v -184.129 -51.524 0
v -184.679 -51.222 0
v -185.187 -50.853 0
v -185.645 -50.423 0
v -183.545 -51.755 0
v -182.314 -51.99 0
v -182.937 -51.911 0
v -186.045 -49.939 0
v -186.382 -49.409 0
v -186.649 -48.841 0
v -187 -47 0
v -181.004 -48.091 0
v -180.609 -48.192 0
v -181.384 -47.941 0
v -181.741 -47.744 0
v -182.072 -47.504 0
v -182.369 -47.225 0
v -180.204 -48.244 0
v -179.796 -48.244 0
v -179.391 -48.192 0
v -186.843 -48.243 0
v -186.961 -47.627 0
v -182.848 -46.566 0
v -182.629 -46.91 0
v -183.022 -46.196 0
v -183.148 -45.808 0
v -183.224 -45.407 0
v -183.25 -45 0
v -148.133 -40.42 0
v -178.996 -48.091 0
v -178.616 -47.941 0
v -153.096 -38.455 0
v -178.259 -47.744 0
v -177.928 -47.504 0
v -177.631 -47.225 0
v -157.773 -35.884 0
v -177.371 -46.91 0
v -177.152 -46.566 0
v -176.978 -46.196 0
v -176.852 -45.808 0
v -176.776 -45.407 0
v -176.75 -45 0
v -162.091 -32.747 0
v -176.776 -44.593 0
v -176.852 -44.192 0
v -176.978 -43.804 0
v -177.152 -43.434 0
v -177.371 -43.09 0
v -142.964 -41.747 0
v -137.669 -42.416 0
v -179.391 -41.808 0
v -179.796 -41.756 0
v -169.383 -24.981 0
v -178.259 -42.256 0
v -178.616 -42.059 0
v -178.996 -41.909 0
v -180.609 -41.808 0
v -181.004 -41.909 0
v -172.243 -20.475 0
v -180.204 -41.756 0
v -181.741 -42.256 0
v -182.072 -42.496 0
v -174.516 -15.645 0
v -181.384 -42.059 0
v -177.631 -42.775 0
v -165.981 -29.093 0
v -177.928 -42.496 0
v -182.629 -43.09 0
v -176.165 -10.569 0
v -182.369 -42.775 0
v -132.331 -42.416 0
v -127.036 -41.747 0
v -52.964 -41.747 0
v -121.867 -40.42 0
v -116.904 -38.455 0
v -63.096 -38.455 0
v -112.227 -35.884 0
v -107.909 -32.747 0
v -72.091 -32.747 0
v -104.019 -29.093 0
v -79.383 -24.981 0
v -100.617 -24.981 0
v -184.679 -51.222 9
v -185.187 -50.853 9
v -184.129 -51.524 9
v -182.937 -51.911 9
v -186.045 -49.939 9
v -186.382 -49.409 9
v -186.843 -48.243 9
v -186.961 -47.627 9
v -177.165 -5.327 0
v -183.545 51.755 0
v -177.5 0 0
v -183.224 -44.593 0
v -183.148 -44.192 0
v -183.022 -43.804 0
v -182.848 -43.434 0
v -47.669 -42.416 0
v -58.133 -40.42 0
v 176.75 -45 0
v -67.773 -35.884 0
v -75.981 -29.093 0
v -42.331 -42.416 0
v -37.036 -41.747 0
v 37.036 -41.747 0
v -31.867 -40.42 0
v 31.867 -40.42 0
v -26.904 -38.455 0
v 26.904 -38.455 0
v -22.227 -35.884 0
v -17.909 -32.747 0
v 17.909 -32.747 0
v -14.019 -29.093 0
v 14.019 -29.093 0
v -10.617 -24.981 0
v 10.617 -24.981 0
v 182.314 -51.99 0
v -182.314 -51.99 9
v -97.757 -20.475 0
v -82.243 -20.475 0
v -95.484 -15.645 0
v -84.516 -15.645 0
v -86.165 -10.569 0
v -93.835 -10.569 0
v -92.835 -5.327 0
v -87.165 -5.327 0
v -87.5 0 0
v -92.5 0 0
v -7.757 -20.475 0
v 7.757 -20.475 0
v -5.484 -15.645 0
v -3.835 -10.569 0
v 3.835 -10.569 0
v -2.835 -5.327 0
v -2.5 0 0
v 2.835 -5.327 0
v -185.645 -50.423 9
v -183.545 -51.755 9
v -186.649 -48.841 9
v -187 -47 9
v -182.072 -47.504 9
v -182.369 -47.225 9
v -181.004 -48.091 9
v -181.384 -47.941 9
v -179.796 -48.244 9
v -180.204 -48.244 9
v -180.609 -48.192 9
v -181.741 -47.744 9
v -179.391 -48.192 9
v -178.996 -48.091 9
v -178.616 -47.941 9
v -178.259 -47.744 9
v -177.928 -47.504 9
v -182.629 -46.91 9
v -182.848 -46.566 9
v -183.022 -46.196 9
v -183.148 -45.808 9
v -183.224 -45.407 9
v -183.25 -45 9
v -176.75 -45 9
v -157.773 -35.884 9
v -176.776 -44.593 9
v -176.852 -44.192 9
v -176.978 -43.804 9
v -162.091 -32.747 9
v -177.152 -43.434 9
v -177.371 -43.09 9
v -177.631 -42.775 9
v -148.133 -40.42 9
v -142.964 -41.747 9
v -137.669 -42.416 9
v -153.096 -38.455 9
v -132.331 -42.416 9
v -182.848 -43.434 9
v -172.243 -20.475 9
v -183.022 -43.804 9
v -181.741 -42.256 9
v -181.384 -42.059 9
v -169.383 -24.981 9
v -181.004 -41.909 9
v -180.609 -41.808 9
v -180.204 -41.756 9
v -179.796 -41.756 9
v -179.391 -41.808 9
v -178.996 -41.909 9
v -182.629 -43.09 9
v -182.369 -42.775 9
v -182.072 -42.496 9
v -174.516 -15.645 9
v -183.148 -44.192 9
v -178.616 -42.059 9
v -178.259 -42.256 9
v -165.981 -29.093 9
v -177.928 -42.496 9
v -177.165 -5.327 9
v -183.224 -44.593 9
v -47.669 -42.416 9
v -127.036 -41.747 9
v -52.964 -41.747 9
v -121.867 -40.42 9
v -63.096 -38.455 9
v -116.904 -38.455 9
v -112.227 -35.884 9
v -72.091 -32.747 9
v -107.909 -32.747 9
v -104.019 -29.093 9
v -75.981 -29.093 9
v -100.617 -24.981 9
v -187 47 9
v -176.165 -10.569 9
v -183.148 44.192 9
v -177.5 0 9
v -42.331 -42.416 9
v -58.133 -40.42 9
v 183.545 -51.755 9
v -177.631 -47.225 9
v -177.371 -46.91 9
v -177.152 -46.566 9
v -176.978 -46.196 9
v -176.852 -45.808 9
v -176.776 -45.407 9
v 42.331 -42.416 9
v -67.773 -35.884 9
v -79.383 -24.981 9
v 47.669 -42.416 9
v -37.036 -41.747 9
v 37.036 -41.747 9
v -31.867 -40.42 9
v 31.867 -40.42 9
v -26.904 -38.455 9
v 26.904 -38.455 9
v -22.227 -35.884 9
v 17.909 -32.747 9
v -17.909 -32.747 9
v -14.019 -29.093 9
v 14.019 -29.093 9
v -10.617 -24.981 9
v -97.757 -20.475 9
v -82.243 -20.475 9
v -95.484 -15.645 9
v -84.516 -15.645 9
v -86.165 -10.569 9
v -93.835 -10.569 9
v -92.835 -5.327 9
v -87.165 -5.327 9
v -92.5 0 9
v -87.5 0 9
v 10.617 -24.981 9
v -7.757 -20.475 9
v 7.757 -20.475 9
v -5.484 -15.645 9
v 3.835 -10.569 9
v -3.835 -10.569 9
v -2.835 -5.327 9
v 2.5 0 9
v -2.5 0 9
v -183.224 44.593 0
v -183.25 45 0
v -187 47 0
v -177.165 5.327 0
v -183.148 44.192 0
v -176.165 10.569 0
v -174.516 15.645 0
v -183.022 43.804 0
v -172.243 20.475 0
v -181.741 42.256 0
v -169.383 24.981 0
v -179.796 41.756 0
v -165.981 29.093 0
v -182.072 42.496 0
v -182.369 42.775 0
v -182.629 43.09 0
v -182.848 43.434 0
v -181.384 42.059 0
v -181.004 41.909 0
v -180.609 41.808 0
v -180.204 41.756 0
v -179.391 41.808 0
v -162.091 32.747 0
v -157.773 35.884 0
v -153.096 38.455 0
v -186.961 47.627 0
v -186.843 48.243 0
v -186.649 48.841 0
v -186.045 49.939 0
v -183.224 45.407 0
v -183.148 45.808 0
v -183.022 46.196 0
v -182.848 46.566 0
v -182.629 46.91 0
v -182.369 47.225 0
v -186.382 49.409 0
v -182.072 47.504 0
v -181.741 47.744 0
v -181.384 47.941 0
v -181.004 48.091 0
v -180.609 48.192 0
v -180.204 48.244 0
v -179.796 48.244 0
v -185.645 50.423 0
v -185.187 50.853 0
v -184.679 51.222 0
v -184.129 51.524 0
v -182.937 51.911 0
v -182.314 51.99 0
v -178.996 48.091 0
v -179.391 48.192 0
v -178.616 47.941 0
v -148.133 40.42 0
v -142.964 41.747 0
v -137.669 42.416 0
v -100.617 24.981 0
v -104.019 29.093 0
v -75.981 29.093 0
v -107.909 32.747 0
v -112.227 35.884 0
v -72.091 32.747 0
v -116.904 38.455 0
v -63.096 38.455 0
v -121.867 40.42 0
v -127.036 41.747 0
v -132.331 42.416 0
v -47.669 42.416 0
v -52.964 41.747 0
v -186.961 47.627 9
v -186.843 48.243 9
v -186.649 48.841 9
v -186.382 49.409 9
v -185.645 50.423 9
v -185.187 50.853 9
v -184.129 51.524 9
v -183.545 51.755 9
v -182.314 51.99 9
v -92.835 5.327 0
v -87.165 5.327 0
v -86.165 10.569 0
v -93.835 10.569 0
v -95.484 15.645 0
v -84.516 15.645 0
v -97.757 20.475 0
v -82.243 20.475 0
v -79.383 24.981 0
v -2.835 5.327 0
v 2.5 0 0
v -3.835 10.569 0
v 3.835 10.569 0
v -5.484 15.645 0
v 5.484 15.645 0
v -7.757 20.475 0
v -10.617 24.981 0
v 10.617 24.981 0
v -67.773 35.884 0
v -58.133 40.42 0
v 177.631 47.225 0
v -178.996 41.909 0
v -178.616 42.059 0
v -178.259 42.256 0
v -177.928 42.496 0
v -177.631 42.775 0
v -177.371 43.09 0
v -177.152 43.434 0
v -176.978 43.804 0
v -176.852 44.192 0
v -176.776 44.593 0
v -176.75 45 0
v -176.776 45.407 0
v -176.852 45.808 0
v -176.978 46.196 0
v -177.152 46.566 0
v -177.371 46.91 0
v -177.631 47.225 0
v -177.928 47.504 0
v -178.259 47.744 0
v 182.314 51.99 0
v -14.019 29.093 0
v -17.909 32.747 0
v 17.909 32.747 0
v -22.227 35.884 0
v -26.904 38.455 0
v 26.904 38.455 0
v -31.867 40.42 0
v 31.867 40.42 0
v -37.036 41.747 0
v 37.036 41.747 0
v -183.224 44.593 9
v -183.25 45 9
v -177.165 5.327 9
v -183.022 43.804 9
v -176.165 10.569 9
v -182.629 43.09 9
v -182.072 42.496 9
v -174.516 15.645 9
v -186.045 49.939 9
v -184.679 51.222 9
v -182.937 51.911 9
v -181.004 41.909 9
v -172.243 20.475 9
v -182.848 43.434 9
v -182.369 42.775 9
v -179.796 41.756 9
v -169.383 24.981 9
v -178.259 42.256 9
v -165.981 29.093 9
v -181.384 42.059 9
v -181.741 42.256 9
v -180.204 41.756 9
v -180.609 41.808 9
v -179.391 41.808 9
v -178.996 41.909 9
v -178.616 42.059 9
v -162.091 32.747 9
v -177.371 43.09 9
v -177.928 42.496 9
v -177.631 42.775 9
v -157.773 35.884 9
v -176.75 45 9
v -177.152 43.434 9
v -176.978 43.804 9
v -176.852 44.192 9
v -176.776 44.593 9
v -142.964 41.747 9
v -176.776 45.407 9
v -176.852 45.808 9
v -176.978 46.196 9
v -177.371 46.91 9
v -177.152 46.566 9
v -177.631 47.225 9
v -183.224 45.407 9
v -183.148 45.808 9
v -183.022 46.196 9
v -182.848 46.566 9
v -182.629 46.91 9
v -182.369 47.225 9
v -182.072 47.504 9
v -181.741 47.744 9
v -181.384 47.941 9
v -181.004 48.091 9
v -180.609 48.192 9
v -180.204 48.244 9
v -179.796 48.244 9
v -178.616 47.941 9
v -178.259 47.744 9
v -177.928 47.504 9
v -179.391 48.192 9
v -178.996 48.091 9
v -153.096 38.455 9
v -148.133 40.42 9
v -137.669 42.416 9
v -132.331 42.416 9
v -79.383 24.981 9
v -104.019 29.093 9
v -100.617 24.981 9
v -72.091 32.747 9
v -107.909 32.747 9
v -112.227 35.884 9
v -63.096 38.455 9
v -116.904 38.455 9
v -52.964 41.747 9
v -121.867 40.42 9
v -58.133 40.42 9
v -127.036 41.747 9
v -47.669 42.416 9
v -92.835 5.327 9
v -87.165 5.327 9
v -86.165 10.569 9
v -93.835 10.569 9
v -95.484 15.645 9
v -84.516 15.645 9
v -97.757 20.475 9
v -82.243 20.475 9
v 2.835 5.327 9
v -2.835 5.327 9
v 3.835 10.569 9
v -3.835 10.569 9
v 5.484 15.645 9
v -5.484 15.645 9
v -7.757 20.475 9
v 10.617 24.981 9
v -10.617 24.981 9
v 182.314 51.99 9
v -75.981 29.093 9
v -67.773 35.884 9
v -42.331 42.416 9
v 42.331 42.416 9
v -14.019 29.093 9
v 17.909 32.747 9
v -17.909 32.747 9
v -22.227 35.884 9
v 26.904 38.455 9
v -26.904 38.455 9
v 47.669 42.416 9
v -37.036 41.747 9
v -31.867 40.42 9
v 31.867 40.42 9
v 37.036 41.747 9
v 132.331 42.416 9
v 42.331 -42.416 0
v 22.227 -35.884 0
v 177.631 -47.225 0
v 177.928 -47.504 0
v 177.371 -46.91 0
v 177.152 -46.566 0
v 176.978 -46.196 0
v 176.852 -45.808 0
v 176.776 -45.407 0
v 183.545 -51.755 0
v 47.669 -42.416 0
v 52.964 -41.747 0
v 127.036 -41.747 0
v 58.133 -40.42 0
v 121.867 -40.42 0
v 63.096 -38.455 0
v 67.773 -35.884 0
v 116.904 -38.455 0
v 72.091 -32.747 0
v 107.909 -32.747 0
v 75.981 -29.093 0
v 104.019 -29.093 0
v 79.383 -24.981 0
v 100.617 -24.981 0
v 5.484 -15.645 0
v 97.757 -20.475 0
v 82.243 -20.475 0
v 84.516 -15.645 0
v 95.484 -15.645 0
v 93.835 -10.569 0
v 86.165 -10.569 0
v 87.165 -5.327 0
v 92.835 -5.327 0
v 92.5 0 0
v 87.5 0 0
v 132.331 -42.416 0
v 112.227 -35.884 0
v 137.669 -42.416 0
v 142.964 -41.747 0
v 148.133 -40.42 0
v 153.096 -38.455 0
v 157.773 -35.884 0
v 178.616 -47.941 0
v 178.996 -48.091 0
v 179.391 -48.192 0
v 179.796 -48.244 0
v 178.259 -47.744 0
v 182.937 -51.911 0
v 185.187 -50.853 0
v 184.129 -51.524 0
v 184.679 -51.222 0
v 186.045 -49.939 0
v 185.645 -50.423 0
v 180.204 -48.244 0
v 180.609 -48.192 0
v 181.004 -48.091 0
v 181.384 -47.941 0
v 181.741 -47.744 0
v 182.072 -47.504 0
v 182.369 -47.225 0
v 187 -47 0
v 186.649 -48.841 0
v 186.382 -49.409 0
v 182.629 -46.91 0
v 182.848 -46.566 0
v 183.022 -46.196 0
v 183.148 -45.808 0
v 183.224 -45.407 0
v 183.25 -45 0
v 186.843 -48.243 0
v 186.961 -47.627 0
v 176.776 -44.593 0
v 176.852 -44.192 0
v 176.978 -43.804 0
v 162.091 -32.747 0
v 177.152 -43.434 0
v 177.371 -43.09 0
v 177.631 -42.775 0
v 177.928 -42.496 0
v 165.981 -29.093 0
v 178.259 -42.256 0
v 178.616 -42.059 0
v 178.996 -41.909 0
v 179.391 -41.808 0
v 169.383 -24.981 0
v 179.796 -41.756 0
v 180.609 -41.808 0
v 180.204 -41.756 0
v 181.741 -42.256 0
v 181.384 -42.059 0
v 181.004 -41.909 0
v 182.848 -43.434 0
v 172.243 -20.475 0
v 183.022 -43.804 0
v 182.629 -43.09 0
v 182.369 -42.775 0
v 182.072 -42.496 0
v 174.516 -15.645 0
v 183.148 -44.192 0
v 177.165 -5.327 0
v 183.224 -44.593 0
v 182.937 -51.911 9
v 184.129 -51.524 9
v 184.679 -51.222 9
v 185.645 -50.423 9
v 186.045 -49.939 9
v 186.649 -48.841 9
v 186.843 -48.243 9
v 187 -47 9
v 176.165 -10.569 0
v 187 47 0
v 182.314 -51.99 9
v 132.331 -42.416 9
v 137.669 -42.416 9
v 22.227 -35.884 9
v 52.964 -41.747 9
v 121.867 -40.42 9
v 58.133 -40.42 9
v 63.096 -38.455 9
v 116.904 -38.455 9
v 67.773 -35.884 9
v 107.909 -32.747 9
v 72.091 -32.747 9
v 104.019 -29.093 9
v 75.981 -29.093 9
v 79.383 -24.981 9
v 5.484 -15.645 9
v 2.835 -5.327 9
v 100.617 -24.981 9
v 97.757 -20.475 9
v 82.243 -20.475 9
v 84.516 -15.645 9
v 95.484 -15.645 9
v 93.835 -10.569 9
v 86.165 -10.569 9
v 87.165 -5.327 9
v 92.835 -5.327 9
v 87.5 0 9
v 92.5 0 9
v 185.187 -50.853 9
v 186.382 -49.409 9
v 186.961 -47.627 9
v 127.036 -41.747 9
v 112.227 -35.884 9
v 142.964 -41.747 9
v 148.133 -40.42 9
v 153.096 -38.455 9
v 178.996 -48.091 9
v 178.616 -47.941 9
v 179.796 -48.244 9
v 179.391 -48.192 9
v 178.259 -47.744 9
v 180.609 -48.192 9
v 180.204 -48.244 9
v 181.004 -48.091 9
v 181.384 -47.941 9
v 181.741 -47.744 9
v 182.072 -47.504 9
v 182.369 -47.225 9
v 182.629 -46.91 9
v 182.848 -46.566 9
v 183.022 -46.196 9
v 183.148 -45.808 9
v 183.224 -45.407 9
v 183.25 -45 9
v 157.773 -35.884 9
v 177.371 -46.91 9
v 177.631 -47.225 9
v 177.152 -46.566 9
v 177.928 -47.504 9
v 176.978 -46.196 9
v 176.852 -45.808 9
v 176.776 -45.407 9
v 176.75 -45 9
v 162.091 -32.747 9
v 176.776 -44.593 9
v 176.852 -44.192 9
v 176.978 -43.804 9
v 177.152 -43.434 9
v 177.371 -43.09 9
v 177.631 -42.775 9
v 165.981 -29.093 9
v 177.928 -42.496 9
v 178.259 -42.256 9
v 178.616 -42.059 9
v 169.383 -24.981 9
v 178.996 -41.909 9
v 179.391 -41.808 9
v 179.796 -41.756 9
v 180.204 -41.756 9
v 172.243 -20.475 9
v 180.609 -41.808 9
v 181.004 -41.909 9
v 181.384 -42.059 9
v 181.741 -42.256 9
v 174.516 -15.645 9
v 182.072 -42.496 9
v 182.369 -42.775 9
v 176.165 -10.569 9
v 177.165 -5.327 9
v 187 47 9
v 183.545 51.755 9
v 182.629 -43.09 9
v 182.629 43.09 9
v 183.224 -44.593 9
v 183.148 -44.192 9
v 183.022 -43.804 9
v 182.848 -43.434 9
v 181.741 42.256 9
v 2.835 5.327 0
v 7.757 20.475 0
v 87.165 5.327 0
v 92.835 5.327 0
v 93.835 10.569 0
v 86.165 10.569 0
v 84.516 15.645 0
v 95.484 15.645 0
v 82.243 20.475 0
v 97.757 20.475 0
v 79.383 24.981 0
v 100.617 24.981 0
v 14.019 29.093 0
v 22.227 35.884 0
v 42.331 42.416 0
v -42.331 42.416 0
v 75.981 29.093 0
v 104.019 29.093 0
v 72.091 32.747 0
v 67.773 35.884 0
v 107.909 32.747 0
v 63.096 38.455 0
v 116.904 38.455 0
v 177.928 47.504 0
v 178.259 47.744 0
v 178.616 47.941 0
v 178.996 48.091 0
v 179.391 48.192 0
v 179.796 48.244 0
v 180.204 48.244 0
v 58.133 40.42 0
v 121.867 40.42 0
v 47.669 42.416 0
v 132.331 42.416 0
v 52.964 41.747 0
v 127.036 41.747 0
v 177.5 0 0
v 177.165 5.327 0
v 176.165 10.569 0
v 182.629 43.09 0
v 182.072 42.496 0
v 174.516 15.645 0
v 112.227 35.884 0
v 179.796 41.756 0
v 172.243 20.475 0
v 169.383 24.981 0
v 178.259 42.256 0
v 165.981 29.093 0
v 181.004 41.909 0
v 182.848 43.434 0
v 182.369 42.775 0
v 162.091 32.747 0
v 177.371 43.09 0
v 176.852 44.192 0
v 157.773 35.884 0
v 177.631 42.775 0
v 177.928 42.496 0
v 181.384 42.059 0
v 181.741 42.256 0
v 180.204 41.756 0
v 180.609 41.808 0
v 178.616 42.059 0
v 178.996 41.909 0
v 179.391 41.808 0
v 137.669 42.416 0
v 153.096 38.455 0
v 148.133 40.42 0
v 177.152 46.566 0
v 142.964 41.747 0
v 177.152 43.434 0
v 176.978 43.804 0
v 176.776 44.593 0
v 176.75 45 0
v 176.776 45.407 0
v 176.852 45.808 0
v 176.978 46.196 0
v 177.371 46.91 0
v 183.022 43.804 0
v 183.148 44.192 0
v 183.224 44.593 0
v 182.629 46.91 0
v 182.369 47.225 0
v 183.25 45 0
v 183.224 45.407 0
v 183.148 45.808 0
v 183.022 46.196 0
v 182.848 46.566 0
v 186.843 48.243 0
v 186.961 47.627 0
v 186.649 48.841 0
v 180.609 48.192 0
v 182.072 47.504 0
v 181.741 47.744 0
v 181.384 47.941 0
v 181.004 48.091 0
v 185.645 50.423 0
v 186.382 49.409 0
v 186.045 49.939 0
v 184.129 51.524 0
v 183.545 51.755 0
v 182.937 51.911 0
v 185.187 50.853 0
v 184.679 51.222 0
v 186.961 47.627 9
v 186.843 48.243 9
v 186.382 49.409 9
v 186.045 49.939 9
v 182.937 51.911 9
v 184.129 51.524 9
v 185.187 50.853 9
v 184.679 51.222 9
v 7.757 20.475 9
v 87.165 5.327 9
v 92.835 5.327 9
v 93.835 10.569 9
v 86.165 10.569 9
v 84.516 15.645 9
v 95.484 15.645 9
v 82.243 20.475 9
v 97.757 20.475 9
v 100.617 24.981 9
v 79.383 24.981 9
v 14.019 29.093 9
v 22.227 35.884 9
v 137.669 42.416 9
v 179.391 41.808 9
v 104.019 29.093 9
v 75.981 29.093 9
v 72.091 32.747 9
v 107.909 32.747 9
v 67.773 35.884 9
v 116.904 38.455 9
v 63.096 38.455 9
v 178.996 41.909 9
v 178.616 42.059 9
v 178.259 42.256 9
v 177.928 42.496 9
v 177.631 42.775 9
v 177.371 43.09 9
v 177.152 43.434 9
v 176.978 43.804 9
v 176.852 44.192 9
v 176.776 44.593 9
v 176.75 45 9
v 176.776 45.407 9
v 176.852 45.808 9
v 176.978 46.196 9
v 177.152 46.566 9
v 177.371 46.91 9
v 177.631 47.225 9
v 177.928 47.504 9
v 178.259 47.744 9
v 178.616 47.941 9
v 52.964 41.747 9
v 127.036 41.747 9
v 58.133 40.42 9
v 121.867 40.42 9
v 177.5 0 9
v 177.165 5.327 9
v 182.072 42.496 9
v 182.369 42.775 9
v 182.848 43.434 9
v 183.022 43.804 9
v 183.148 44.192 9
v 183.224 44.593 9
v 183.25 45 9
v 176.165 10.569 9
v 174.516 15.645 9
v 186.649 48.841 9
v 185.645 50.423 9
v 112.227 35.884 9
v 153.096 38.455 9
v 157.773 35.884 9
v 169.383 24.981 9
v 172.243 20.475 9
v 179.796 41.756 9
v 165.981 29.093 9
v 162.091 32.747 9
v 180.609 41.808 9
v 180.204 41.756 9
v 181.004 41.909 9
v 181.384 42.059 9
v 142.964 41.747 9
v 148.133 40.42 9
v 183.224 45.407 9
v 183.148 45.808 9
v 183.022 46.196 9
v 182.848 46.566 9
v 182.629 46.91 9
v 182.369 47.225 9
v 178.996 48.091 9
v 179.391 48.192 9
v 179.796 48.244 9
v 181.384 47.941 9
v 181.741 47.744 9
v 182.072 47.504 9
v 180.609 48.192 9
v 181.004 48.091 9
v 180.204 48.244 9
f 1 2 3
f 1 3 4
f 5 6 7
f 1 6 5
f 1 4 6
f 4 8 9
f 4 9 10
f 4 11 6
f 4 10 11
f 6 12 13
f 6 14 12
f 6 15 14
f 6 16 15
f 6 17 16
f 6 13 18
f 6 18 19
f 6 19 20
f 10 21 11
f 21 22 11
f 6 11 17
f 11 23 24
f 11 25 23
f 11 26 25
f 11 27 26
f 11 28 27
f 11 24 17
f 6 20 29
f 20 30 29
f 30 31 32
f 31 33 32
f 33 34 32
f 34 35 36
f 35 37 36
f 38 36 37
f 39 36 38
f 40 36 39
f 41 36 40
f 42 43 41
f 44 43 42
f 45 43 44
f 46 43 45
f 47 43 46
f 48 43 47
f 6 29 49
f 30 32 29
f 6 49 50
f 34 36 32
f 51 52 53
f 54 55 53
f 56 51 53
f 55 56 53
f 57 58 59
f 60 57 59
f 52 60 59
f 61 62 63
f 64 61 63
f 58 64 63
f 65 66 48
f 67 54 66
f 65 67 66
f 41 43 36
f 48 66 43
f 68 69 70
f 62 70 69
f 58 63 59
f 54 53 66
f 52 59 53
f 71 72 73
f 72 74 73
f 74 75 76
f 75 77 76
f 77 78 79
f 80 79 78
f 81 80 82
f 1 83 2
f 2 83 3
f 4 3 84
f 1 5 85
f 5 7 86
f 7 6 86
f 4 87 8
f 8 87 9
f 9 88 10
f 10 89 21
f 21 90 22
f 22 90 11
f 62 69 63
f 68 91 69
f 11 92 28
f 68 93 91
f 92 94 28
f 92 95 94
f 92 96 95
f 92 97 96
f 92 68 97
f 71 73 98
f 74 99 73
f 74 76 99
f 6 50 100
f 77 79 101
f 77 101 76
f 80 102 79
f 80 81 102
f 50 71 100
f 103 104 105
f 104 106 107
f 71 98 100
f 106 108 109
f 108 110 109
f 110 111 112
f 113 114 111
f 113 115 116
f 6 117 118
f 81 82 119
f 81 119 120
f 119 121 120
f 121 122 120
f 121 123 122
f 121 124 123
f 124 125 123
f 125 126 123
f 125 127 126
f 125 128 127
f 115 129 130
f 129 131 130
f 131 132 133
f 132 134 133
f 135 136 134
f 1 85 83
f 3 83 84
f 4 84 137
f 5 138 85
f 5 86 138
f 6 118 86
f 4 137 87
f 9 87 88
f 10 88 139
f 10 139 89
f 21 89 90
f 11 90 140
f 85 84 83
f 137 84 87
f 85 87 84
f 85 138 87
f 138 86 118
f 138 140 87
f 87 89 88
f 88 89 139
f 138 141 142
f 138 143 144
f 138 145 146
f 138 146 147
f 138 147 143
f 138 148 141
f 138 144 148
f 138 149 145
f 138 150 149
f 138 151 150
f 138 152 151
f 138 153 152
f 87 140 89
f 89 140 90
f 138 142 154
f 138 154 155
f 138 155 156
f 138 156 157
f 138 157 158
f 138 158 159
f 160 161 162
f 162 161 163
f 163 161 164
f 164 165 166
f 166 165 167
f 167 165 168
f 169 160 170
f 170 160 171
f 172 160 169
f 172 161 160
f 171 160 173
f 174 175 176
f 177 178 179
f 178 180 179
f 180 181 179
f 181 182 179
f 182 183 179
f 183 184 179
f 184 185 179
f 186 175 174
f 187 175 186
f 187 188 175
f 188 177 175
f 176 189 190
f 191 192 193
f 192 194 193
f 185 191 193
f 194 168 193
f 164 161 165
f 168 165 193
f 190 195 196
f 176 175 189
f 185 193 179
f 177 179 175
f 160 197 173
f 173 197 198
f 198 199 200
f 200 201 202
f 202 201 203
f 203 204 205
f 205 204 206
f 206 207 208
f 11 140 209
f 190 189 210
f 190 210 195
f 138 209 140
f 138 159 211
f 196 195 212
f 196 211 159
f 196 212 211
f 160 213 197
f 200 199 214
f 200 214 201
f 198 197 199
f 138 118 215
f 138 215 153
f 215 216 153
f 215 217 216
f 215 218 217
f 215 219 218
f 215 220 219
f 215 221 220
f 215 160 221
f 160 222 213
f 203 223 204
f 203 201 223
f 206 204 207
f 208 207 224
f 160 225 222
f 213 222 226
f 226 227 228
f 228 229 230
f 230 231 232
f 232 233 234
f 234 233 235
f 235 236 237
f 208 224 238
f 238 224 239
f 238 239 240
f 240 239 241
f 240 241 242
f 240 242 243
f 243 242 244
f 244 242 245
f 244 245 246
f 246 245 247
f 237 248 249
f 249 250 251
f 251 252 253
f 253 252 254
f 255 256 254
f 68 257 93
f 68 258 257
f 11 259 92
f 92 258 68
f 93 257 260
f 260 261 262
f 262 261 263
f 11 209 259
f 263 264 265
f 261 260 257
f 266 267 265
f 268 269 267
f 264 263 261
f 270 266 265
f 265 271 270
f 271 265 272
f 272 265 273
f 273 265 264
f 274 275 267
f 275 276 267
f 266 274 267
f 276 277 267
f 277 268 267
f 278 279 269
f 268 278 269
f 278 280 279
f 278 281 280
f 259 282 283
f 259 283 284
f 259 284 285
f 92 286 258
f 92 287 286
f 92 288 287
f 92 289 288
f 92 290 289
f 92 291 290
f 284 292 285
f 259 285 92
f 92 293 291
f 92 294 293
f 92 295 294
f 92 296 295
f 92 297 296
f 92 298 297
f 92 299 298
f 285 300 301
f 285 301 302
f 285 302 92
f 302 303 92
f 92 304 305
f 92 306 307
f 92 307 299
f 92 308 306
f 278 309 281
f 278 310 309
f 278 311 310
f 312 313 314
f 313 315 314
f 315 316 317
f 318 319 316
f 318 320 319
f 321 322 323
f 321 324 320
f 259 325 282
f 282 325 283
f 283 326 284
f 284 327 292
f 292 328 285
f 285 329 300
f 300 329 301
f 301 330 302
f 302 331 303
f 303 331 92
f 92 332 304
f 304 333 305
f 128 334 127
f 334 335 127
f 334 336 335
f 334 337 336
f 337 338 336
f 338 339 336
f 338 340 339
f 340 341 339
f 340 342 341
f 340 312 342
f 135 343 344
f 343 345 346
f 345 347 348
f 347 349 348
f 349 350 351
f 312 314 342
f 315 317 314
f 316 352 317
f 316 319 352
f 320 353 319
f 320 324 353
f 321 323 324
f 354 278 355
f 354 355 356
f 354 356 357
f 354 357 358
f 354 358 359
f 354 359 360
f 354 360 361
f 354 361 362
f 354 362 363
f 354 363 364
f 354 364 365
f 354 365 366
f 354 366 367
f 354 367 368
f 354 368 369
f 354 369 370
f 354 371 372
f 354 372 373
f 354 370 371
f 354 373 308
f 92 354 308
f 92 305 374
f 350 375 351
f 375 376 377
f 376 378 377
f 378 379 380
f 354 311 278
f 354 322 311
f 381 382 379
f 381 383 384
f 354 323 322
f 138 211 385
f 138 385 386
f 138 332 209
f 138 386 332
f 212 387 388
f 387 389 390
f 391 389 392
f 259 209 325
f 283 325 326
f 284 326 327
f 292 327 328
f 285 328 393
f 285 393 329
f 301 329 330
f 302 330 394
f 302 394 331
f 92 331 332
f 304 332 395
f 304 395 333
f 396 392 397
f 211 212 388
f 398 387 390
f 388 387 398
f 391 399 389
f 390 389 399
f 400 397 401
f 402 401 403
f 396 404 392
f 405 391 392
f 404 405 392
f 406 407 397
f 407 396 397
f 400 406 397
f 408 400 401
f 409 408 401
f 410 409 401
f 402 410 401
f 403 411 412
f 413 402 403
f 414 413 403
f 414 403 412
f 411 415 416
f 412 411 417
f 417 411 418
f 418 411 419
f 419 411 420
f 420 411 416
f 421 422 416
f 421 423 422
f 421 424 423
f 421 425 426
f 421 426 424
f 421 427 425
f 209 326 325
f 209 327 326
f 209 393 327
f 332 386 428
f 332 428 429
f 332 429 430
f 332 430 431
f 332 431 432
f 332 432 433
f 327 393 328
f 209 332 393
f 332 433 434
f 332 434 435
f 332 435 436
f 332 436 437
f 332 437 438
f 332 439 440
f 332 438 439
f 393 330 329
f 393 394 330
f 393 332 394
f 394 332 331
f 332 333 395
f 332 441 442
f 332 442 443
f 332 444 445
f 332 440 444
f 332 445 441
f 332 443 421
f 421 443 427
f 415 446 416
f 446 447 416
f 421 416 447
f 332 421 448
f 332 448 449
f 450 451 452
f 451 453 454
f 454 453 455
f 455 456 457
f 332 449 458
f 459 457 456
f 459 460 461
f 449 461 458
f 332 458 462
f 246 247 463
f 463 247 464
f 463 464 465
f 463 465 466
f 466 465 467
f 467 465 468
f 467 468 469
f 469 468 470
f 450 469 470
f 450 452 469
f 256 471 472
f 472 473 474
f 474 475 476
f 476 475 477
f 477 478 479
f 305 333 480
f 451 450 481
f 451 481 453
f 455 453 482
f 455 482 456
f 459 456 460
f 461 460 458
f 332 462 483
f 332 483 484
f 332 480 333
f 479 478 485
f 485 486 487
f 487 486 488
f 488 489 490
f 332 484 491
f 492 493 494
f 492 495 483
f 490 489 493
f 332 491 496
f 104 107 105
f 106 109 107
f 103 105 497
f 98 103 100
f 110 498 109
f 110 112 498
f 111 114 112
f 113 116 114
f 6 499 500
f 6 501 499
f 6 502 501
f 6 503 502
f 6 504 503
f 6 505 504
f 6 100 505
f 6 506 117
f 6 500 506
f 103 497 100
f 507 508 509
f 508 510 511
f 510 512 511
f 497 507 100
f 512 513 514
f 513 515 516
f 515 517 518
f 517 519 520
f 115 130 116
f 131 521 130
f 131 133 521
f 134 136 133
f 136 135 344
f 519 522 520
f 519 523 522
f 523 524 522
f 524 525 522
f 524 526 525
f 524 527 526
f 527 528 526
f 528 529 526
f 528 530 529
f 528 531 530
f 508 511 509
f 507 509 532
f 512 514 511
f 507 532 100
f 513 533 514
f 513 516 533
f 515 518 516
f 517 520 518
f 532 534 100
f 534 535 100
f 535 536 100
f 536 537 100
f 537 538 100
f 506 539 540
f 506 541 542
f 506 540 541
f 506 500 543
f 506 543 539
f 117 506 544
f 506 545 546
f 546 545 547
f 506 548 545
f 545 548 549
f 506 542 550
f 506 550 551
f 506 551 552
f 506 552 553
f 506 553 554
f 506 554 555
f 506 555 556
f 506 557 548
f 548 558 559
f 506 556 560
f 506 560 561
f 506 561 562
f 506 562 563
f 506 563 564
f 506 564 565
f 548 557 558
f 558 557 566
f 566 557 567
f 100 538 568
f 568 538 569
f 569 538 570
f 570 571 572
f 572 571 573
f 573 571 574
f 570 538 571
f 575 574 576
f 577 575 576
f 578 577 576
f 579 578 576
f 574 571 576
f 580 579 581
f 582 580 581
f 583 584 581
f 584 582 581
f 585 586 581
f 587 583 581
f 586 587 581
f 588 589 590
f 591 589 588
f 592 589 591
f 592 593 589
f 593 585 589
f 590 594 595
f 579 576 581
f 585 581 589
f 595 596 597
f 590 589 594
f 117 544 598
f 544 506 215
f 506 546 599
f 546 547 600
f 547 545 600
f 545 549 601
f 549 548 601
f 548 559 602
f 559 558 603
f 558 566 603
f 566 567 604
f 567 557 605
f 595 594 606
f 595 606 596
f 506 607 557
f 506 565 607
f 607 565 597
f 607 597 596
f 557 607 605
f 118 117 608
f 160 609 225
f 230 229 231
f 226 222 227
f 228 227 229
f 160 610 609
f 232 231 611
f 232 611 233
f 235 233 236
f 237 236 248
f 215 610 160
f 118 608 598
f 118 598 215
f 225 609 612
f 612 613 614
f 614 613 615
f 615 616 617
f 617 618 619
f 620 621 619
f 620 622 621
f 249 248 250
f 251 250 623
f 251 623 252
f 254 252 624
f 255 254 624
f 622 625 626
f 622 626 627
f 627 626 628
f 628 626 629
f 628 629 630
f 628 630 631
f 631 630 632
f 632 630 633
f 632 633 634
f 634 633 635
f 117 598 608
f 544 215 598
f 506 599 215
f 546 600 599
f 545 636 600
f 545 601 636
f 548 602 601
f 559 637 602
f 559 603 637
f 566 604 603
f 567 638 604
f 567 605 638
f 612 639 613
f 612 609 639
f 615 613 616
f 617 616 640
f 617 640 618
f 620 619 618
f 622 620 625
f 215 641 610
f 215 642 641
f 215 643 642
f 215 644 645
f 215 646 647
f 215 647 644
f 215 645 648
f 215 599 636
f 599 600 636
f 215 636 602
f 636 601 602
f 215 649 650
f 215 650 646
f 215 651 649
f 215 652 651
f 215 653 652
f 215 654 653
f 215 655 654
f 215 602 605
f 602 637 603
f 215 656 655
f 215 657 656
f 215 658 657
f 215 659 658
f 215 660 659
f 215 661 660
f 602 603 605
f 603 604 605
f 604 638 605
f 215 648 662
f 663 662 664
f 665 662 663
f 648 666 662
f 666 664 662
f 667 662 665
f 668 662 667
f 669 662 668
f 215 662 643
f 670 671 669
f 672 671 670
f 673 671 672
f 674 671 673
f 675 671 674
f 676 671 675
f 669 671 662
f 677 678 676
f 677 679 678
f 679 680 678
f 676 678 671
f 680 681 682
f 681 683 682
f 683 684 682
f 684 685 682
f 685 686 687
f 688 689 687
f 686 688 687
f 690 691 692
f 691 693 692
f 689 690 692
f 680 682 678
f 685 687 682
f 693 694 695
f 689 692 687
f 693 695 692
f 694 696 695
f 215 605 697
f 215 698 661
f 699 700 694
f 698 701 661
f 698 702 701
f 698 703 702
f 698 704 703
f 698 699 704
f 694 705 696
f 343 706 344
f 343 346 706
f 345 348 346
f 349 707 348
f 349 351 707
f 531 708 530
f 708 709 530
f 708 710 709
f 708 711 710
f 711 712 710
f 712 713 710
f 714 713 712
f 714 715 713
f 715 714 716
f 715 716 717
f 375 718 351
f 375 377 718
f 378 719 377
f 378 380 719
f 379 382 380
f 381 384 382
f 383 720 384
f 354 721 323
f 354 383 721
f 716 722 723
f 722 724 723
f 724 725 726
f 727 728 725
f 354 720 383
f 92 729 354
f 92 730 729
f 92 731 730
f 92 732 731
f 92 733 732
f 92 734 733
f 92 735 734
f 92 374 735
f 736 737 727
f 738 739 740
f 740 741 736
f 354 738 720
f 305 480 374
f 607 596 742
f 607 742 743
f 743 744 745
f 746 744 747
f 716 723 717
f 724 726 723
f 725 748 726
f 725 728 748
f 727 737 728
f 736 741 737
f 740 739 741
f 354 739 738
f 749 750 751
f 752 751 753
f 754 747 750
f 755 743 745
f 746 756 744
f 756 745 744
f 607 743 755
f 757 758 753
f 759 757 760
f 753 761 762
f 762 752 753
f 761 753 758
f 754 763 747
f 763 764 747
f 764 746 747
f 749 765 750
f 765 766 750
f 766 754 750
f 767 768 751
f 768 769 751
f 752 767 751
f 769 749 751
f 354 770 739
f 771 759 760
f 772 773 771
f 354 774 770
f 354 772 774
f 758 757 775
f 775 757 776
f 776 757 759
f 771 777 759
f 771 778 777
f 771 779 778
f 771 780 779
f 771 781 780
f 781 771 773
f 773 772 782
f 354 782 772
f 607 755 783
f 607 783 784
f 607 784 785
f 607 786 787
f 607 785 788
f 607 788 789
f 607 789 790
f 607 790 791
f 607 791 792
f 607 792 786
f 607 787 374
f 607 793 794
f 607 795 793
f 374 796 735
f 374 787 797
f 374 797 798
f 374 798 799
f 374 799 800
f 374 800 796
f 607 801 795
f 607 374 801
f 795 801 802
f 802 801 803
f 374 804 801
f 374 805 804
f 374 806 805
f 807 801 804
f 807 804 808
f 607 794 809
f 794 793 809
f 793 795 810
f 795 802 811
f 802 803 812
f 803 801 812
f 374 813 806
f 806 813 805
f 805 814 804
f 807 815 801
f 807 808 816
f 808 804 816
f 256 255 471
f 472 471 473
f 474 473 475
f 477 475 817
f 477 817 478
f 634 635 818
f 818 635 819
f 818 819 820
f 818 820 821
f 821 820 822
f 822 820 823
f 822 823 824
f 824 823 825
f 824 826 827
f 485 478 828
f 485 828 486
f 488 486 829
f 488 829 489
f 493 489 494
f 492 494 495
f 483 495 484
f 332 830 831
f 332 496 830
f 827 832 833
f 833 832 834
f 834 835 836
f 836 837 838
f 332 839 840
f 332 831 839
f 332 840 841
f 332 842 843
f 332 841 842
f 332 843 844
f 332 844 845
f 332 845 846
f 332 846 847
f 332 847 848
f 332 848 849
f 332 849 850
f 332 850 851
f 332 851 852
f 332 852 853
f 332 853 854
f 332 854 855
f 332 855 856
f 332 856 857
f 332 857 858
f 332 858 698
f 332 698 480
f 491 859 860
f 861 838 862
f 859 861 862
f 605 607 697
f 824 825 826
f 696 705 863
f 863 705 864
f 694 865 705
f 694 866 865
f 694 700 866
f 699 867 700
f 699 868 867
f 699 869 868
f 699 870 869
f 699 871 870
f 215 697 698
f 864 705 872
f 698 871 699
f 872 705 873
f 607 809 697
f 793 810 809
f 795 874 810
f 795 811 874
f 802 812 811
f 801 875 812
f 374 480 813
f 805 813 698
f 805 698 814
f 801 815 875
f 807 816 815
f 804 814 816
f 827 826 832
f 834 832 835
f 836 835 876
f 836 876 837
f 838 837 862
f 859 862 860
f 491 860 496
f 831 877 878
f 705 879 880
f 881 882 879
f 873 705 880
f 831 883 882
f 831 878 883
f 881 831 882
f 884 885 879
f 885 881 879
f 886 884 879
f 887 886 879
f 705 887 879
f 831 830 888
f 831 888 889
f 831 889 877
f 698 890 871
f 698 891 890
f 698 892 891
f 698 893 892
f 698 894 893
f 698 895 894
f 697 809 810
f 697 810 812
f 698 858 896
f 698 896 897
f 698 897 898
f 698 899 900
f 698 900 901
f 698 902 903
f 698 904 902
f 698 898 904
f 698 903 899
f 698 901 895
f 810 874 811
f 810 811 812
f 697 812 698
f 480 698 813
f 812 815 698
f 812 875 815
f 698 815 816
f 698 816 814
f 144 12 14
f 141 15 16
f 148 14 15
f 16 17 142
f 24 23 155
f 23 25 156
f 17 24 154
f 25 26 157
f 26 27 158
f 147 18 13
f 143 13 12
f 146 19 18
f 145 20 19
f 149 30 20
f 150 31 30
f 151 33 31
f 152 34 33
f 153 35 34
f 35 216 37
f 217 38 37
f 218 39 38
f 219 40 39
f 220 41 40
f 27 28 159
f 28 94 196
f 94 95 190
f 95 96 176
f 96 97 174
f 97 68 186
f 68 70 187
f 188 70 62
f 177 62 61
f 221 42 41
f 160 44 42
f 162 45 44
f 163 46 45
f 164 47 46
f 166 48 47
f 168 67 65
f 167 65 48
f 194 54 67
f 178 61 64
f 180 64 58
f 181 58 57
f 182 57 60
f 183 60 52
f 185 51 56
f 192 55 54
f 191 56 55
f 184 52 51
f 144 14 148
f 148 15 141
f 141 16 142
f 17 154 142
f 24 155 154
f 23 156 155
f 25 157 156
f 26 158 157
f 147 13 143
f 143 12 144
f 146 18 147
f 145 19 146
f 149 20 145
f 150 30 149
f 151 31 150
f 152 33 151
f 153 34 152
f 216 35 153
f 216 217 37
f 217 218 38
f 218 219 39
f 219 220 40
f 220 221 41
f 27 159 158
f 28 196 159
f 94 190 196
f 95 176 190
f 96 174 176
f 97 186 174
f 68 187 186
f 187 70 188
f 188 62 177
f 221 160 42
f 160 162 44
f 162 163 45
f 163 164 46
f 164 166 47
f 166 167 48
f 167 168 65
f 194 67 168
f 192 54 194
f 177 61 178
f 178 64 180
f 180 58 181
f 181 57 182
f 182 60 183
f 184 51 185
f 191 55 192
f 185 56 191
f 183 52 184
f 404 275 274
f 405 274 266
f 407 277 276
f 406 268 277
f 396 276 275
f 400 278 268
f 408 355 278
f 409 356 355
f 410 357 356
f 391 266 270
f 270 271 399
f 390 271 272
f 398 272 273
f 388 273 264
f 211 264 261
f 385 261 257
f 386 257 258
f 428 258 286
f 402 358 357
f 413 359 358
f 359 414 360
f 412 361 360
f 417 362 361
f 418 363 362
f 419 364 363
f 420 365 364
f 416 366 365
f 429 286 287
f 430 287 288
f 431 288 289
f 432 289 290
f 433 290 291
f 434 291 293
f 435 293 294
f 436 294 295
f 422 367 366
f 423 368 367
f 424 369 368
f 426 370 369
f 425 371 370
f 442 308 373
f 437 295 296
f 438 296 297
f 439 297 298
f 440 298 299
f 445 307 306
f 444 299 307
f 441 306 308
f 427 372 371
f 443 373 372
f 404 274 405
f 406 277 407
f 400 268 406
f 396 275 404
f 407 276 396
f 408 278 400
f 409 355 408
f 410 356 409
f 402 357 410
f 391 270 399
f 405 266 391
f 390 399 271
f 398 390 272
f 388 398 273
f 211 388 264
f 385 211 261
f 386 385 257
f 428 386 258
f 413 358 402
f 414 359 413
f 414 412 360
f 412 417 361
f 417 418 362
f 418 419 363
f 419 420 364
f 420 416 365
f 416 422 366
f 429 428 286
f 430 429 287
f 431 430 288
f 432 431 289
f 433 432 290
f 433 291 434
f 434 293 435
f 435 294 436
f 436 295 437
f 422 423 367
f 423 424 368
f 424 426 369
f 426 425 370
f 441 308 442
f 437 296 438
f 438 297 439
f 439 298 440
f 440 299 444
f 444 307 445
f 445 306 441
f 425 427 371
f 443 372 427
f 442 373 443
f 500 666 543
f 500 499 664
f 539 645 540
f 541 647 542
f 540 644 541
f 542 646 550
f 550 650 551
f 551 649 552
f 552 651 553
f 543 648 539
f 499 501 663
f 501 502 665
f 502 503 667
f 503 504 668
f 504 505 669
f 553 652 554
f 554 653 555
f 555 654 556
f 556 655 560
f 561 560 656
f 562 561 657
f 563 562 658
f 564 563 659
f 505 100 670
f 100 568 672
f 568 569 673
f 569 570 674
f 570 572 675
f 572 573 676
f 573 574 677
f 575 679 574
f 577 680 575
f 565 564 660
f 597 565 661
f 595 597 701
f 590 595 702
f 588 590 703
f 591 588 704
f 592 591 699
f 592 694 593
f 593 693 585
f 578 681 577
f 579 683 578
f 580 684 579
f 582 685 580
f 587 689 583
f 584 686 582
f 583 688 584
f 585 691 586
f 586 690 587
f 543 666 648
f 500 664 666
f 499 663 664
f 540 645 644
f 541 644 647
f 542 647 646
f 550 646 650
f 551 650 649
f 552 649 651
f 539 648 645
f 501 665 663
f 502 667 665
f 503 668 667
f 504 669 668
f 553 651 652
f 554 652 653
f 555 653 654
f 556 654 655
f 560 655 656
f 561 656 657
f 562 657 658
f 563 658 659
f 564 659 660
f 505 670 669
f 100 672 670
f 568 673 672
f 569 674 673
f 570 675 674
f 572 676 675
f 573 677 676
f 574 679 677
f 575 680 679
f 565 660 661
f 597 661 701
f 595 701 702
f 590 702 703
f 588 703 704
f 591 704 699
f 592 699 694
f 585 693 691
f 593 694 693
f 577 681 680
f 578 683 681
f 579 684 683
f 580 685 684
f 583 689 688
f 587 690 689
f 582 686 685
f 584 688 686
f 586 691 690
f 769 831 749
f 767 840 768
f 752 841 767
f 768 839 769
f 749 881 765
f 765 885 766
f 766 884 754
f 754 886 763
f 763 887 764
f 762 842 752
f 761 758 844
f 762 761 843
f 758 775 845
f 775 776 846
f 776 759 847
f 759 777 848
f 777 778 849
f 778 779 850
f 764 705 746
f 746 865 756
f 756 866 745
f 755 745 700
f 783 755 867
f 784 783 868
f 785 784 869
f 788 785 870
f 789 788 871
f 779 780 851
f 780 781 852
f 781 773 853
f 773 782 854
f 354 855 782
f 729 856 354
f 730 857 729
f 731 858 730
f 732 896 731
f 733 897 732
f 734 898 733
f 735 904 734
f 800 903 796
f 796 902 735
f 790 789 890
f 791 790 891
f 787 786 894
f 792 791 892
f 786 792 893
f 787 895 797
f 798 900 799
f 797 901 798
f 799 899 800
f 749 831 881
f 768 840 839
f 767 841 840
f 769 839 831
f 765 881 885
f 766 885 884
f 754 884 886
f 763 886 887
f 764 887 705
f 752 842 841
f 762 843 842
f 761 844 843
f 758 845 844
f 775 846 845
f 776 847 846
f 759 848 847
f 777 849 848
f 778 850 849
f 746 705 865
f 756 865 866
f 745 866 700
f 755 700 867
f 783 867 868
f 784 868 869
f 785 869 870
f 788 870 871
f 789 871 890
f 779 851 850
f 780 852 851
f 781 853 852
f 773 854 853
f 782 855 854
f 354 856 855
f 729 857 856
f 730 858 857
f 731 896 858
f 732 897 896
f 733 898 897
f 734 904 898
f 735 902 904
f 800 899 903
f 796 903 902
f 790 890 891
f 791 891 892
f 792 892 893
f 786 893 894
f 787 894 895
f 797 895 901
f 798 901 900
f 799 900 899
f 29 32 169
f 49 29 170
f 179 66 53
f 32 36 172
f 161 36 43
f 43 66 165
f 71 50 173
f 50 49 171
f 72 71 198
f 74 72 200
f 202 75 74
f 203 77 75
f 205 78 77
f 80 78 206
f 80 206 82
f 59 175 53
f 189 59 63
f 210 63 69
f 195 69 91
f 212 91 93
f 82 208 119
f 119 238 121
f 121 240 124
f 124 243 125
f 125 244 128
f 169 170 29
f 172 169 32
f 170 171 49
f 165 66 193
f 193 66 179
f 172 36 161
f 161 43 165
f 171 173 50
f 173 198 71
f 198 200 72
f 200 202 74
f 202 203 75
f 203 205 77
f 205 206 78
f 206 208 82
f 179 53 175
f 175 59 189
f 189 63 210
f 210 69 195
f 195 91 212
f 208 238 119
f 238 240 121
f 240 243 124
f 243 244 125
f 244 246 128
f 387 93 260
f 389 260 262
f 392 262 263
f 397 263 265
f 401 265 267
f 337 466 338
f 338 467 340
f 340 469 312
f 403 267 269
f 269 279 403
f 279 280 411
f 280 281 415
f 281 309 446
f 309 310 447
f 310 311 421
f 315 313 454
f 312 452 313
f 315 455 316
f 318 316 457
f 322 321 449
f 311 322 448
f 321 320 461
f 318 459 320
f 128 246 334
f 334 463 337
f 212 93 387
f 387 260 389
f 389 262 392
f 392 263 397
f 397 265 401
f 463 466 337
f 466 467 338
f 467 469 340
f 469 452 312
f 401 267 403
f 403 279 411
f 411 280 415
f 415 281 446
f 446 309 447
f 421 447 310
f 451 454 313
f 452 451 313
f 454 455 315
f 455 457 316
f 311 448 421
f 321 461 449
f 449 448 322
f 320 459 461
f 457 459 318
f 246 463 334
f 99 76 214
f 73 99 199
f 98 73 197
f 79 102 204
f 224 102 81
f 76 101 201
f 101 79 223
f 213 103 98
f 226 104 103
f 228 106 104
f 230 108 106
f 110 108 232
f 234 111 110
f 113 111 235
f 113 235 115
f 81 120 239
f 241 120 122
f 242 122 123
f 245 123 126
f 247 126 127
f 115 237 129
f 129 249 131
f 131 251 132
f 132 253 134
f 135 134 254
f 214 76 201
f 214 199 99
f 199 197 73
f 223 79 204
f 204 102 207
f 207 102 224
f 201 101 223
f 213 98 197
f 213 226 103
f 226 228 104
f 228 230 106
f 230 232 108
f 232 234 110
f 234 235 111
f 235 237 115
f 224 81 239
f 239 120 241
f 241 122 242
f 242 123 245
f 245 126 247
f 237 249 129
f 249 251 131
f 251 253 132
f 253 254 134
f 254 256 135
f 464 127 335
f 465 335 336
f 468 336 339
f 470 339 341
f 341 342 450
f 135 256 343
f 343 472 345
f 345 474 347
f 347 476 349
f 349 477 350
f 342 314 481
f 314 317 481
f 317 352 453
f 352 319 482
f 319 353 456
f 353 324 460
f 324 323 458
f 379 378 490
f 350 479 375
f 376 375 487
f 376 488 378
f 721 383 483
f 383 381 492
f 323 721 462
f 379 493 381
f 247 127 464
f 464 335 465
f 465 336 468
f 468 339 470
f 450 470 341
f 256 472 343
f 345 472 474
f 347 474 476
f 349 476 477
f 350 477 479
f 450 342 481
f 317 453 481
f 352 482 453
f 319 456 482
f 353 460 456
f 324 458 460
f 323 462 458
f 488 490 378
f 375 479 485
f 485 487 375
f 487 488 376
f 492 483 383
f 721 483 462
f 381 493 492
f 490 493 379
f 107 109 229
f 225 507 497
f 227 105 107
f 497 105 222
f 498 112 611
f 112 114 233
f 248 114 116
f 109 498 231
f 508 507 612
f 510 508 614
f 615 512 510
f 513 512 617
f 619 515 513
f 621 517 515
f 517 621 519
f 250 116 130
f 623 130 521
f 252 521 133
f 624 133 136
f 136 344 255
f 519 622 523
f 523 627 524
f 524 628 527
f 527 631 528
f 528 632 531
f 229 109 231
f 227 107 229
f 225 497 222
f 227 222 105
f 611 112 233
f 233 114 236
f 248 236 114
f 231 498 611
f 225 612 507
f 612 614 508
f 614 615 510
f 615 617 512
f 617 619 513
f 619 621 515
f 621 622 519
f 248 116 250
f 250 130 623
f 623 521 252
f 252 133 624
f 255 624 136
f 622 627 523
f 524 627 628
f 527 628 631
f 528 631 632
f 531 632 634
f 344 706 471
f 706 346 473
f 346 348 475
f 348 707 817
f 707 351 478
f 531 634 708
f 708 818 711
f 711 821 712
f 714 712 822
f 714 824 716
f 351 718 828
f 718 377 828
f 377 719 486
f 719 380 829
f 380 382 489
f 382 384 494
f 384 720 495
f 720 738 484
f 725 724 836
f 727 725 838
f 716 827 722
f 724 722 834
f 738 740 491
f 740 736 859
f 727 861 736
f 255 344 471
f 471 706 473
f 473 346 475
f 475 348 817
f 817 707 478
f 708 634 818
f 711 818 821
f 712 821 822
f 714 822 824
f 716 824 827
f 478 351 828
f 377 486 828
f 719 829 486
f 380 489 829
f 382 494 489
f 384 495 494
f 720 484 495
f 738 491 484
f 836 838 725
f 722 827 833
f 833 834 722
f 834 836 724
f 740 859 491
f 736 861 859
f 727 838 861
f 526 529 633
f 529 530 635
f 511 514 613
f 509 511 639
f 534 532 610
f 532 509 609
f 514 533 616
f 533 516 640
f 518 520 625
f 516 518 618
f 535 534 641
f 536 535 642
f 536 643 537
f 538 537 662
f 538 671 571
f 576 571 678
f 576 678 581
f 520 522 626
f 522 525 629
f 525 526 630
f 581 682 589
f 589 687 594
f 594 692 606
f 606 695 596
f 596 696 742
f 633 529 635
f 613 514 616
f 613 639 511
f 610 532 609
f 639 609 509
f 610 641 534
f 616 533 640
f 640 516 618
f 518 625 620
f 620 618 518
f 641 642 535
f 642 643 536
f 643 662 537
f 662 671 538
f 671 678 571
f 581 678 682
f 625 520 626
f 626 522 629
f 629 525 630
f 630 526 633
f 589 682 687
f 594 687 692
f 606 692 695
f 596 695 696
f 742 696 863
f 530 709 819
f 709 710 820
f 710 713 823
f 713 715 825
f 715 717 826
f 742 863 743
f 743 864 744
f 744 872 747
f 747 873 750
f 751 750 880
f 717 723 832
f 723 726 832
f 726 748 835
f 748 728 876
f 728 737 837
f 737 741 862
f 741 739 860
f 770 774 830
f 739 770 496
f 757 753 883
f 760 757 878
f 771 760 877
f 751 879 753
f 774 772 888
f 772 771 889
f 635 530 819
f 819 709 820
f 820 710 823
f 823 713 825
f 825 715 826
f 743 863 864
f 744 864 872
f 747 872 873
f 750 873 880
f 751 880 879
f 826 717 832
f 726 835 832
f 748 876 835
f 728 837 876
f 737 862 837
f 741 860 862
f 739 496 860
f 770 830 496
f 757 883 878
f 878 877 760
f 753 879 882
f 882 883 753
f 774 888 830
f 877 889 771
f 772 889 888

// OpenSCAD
$fn = 50;

difference() {
	union() {
		hull() {
			translate(v = [-182.0, 47.0, 0]) {
				cylinder(h = 9, r = 5);
			}
			translate(v = [182.0, 47.0, 0]) {
				cylinder(h = 9, r = 5);
			}
			translate(v = [-182.0, -47.0, 0]) {
				cylinder(h = 9, r = 5);
			}
			translate(v = [182.0, -47.0, 0]) {
				cylinder(h = 9, r = 5);
			}
		}
	}
	union() {
		translate(v = [-180.0, -45.0, -100.0]) {
			cylinder(h = 200, r = 3.25);
		}
		translate(v = [-180.0, 45.0, -100.0]) {
			cylinder(h = 200, r = 3.25);
		}
		translate(v = [180.0, -45.0, -100.0]) {
			cylinder(h = 200, r = 3.25);
		}
		translate(v = [180.0, 45.0, -100.0]) {
			cylinder(h = 200, r = 3.25);
		}
		translate(v = [-180.0, -45.0, -100.0]) {
			cylinder(h = 200, r = 1.8);
		}
		translate(v = [-180.0, 45.0, -100.0]) {
			cylinder(h = 200, r = 1.8);
		}
		translate(v = [180.0, -45.0, -100.0]) {
			cylinder(h = 200, r = 1.8);
		}
		translate(v = [180.0, 45.0, -100.0]) {
			cylinder(h = 200, r = 1.8);
		}
		translate(v = [-135.0, 0, 0.0]) {
			cylinder(h = 9, r = 42.5);
		}
		translate(v = [-45.0, 0, 0.0]) {
			cylinder(h = 9, r = 42.5);
		}
		translate(v = [45.0, 0, 0.0]) {
			cylinder(h = 9, r = 42.5);
		}
		translate(v = [135.0, 0, 0.0]) {
			cylinder(h = 9, r = 42.5);
		}
	}
}
